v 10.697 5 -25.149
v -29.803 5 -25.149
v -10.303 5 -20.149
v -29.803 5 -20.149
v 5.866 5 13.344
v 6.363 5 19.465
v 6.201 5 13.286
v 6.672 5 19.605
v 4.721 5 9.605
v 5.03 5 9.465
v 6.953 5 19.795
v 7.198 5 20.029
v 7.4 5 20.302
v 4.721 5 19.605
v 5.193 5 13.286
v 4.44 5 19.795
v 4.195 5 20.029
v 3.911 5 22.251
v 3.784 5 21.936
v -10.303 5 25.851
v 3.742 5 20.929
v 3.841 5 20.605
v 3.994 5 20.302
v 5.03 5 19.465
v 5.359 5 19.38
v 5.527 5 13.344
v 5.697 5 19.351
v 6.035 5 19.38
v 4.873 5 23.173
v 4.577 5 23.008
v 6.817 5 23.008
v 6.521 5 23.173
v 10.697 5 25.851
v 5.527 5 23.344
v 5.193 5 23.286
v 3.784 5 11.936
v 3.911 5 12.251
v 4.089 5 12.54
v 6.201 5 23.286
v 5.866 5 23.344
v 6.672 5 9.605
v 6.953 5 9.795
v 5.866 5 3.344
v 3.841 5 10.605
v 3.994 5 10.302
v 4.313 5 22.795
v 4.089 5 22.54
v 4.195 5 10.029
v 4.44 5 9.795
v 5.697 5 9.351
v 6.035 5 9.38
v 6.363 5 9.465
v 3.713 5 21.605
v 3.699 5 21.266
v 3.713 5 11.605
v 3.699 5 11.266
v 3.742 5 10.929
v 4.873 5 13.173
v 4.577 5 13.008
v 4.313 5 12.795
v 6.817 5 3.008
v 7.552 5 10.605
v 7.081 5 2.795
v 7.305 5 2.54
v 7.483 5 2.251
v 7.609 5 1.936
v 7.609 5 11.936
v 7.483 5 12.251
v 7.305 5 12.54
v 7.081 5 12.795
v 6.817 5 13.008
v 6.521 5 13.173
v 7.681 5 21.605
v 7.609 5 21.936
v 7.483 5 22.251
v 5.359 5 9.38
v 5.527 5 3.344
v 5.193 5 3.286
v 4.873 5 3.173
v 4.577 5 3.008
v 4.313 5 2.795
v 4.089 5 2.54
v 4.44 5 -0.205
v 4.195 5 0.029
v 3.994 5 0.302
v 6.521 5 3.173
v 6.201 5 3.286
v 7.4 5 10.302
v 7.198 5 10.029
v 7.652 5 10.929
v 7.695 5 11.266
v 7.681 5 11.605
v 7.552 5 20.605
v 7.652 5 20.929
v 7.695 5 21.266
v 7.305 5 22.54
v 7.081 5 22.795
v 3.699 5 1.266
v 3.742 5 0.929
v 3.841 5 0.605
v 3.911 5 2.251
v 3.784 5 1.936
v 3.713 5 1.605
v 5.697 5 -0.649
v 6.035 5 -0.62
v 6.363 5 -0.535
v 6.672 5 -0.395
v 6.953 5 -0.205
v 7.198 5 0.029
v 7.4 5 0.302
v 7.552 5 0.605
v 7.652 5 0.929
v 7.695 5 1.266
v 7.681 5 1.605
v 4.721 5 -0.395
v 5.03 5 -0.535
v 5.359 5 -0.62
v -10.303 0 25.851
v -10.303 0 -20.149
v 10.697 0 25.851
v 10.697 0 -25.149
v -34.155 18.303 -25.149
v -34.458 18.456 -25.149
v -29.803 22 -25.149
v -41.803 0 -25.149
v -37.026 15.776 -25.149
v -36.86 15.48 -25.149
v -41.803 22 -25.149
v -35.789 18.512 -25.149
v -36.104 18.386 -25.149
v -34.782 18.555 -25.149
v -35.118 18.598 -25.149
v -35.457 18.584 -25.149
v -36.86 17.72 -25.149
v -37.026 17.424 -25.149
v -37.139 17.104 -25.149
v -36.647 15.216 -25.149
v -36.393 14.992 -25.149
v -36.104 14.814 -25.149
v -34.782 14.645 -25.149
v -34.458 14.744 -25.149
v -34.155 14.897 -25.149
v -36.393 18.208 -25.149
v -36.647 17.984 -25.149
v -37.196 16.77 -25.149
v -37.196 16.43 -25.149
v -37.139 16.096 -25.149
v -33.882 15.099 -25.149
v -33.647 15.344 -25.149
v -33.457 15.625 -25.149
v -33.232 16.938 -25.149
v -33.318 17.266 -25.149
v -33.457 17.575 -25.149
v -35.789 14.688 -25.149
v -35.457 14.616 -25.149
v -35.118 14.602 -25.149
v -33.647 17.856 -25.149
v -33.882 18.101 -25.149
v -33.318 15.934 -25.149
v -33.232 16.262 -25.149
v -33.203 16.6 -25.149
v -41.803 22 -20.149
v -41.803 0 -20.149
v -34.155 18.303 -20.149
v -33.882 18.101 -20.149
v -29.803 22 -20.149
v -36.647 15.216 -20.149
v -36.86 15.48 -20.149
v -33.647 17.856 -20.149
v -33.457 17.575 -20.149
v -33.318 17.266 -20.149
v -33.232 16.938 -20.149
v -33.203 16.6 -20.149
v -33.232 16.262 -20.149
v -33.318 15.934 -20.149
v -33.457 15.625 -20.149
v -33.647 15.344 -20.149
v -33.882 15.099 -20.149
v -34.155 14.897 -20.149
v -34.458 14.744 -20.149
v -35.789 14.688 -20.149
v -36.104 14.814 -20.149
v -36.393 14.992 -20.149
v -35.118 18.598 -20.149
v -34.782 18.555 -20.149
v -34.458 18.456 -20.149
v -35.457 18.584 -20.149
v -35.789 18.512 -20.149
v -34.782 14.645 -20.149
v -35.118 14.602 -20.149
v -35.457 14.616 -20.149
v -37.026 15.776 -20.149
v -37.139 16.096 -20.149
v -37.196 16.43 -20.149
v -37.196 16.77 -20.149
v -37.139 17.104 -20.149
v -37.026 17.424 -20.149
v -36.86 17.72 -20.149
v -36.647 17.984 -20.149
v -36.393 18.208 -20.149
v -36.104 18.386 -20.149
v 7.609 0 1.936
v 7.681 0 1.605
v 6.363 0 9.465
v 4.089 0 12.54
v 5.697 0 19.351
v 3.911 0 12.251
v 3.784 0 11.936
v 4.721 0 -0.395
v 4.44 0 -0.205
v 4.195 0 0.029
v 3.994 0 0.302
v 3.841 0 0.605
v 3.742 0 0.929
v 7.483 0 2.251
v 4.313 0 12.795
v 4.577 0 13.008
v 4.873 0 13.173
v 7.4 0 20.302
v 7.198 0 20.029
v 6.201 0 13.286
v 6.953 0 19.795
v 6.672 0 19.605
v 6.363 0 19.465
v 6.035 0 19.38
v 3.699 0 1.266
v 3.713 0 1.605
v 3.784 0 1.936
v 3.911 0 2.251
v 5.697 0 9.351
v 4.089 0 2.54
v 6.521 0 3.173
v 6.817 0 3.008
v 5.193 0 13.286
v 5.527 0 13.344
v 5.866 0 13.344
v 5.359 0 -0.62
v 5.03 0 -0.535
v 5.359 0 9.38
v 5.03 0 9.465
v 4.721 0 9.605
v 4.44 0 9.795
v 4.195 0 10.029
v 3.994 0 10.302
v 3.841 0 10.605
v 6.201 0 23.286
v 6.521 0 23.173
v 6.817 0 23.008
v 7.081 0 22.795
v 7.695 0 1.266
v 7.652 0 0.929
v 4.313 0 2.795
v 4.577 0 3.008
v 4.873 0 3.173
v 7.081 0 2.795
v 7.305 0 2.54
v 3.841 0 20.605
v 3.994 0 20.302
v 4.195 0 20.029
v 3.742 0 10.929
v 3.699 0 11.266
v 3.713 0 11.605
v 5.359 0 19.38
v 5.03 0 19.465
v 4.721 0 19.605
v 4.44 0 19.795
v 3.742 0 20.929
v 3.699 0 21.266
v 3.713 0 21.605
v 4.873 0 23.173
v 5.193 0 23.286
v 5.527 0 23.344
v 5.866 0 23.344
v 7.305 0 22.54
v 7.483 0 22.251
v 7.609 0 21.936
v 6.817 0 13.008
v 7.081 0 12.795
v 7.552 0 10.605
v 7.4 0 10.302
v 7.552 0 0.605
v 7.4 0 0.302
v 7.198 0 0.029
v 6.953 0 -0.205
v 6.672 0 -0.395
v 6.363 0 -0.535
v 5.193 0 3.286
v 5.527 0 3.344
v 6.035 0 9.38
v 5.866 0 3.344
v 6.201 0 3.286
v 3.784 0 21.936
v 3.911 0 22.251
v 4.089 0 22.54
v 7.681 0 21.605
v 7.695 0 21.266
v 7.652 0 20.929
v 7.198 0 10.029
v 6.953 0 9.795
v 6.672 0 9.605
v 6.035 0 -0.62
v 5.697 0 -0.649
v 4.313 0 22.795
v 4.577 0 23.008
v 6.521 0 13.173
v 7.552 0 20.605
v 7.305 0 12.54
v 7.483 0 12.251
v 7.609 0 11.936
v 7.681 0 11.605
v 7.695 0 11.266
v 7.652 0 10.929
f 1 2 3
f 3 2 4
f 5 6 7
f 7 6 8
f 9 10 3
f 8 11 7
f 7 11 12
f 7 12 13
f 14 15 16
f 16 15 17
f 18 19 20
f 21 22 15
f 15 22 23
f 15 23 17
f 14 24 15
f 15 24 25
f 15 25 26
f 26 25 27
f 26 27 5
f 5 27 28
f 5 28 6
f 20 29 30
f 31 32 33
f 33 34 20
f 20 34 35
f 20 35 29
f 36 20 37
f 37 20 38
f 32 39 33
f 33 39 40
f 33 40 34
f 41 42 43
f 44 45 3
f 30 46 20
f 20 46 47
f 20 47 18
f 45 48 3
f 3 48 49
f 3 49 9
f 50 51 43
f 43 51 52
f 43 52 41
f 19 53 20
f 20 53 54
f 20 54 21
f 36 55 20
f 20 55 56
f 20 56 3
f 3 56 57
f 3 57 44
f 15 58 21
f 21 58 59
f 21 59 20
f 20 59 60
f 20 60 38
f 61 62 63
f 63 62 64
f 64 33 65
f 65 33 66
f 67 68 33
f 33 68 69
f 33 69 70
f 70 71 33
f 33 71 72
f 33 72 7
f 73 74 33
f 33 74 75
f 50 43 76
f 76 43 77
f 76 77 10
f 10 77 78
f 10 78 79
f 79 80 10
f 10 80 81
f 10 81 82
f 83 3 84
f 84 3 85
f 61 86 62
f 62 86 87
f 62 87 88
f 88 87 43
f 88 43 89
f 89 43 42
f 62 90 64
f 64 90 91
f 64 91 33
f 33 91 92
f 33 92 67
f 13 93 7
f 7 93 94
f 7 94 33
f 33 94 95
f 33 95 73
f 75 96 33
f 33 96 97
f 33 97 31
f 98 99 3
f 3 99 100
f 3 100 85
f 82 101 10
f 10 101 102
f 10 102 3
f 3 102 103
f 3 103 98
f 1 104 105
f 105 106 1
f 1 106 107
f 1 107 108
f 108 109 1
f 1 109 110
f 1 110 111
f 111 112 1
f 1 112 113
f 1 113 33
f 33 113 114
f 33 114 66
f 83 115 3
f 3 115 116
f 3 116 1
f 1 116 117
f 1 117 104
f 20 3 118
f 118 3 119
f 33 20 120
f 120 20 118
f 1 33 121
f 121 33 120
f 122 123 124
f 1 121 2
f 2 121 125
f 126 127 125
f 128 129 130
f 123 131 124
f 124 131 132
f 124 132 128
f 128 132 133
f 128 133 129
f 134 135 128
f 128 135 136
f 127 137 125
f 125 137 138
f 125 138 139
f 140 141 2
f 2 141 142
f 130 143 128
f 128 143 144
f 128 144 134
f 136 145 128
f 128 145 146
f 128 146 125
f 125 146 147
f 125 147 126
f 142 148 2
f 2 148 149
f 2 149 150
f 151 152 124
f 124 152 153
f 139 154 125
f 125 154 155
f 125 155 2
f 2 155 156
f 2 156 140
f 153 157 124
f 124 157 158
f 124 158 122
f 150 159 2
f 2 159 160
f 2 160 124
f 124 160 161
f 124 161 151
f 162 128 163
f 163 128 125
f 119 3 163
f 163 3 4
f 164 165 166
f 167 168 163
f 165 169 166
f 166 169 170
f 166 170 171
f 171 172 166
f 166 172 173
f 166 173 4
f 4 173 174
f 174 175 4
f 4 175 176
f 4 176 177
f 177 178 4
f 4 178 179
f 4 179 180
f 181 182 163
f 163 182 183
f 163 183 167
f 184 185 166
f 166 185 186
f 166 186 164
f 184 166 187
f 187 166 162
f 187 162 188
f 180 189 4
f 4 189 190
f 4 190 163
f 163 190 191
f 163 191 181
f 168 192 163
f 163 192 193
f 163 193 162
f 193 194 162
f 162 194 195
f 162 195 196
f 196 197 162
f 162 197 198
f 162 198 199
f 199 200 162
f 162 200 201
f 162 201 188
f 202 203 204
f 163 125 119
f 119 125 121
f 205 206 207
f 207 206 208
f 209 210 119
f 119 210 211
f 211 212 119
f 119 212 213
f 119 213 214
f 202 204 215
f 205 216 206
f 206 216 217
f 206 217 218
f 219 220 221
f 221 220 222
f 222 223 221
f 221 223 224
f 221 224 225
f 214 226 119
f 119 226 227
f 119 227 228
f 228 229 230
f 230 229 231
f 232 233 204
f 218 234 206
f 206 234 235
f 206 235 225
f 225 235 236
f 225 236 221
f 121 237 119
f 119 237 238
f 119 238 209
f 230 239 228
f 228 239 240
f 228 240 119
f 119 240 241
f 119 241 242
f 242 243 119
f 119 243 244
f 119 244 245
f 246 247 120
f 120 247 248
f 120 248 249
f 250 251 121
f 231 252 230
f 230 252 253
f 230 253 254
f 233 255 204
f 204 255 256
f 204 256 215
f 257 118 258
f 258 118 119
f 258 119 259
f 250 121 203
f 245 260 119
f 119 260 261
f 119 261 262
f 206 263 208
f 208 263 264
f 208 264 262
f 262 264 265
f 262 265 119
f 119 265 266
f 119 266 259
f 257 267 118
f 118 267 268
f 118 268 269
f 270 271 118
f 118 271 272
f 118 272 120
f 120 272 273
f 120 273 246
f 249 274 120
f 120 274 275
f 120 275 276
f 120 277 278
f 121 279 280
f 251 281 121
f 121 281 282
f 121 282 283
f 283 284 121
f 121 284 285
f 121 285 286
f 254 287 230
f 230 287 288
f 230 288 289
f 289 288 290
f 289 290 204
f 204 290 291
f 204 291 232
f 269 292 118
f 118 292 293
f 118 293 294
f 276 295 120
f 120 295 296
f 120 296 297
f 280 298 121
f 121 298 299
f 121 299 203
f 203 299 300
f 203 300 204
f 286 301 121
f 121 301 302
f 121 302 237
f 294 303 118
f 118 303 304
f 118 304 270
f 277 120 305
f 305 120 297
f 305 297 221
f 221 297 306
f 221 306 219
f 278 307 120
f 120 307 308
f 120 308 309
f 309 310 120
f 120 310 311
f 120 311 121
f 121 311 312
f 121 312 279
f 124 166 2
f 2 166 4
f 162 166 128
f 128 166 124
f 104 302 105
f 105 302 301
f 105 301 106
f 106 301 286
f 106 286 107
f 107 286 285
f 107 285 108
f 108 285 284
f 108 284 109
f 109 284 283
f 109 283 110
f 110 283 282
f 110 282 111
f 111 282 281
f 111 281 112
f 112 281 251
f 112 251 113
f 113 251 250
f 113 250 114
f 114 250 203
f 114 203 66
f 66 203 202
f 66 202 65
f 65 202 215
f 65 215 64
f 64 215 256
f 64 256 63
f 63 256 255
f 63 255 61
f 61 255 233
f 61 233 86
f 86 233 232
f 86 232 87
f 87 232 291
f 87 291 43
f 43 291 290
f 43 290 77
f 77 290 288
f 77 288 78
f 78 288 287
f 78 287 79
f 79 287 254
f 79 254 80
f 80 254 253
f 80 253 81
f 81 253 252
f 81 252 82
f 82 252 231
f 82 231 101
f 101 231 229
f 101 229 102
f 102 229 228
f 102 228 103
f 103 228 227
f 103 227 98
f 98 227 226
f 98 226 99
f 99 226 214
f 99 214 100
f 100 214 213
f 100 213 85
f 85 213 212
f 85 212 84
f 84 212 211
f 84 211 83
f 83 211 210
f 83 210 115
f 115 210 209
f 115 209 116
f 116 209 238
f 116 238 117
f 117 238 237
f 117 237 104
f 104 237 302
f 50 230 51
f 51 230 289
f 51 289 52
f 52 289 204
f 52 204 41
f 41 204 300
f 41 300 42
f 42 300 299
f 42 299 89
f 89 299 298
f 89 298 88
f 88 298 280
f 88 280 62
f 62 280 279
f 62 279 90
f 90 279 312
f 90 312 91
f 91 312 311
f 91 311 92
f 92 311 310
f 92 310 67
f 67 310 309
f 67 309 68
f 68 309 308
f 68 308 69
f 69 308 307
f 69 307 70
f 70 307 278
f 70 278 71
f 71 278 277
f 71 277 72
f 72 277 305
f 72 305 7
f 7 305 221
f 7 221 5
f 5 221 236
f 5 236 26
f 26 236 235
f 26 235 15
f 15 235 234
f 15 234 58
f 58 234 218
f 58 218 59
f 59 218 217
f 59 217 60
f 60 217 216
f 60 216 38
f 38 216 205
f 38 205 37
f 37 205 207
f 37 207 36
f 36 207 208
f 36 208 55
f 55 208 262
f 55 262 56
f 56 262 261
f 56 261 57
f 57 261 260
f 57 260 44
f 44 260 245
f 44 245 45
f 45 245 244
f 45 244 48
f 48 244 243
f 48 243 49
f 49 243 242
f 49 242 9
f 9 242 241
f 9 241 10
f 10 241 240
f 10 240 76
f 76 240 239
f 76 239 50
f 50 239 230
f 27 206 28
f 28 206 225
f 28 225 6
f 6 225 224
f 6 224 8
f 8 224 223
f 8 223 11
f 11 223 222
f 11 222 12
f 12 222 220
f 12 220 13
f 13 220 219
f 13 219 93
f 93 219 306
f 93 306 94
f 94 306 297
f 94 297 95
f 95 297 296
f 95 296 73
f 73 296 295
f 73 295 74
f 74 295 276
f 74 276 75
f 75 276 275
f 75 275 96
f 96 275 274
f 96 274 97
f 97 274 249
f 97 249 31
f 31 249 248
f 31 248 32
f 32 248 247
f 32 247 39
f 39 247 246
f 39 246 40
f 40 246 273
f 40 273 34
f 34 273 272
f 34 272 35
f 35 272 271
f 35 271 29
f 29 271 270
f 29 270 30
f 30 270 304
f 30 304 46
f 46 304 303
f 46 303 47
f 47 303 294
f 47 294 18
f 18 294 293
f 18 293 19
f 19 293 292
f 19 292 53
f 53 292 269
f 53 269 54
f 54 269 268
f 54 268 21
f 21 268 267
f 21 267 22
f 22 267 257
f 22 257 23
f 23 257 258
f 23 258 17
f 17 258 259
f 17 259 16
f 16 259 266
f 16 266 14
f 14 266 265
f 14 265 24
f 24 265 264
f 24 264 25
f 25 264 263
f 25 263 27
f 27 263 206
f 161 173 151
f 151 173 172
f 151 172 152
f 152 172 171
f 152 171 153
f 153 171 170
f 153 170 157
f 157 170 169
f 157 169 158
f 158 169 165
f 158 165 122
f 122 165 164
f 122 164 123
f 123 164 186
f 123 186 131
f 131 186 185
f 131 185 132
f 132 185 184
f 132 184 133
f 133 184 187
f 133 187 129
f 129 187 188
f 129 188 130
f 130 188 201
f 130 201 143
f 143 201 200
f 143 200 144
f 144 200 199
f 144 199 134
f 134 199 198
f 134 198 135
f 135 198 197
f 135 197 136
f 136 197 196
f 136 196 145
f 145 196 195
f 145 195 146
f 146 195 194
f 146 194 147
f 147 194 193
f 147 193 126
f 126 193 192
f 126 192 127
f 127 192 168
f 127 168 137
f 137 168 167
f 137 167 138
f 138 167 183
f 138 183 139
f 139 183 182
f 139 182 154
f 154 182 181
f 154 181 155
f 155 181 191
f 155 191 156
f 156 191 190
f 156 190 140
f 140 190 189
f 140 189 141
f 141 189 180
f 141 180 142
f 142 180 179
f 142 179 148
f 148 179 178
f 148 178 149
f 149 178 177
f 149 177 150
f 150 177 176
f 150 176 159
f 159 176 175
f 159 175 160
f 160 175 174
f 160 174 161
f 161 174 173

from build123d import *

# Parameters (mm, degrees)
SALIENTE_EXTRUIR1_DEPTH = 5
CROQUIS2_W              = 12
CROQUIS2_H              = 5
SALIENTE_EXTRUIR2_DEPTH = 17
CROQUIS3_R              = 2
CORTAR_EXTRUIR1_DEPTH   = 20
CROQUIS4_R              = 2
CORTAR_EXTRUIR2_DEPTH   = 20


with BuildPart() as part:
    # Croquis1 → Saliente-Extruir1 (new body)
    with BuildSketch(Plane(origin=(0, 0, 0), x_dir=(1, 0, 0), z_dir=(0, 1, 0))):
        Polygon((10.696721311, 25.149180328), (-5.350819672, 25.149180328), (-41.803278689, 25.149180328), (-41.803278689, 20.149180328), (-10.303278689, 20.149180328), (-10.303278689, -25.850819672), (10.696721311, -25.850819672), align=None)
    extrude(amount=SALIENTE_EXTRUIR1_DEPTH)

    # Croquis2 → Saliente-Extruir2 (add)
    with BuildSketch(Plane(origin=(0, 5, 0), x_dir=(1, 0, 0), z_dir=(0, 1, 0))):
        with Locations((-35.803278689, 22.649180328)):
            Rectangle(CROQUIS2_W, CROQUIS2_H)
    extrude(amount=SALIENTE_EXTRUIR2_DEPTH)

    # Croquis3 → Cortar-Extruir1 (cut)
    with BuildSketch(Plane.XZ):
        with Locations(Location((5.696721311, 21.350819672, 0), (0, 0, 270))):
            Circle(CROQUIS3_R)
        with Locations(Location((5.696721311, 11.350819672, 0), (0, 0, 270))):
            Circle(CROQUIS3_R)
        with Locations(Location((5.696721311, 1.350819672, 0), (0, 0, 270))):
            Circle(CROQUIS3_R)
    extrude(amount=-CORTAR_EXTRUIR1_DEPTH, mode=Mode.SUBTRACT)

    # Croquis4 → Cortar-Extruir2 (cut)
    with BuildSketch(Plane.XY.offset(-20.149180328)):
        with Locations((-35.203278689, 16.6)):
            Circle(CROQUIS4_R)
    extrude(amount=-CORTAR_EXTRUIR2_DEPTH, mode=Mode.SUBTRACT)


solid = part.part
